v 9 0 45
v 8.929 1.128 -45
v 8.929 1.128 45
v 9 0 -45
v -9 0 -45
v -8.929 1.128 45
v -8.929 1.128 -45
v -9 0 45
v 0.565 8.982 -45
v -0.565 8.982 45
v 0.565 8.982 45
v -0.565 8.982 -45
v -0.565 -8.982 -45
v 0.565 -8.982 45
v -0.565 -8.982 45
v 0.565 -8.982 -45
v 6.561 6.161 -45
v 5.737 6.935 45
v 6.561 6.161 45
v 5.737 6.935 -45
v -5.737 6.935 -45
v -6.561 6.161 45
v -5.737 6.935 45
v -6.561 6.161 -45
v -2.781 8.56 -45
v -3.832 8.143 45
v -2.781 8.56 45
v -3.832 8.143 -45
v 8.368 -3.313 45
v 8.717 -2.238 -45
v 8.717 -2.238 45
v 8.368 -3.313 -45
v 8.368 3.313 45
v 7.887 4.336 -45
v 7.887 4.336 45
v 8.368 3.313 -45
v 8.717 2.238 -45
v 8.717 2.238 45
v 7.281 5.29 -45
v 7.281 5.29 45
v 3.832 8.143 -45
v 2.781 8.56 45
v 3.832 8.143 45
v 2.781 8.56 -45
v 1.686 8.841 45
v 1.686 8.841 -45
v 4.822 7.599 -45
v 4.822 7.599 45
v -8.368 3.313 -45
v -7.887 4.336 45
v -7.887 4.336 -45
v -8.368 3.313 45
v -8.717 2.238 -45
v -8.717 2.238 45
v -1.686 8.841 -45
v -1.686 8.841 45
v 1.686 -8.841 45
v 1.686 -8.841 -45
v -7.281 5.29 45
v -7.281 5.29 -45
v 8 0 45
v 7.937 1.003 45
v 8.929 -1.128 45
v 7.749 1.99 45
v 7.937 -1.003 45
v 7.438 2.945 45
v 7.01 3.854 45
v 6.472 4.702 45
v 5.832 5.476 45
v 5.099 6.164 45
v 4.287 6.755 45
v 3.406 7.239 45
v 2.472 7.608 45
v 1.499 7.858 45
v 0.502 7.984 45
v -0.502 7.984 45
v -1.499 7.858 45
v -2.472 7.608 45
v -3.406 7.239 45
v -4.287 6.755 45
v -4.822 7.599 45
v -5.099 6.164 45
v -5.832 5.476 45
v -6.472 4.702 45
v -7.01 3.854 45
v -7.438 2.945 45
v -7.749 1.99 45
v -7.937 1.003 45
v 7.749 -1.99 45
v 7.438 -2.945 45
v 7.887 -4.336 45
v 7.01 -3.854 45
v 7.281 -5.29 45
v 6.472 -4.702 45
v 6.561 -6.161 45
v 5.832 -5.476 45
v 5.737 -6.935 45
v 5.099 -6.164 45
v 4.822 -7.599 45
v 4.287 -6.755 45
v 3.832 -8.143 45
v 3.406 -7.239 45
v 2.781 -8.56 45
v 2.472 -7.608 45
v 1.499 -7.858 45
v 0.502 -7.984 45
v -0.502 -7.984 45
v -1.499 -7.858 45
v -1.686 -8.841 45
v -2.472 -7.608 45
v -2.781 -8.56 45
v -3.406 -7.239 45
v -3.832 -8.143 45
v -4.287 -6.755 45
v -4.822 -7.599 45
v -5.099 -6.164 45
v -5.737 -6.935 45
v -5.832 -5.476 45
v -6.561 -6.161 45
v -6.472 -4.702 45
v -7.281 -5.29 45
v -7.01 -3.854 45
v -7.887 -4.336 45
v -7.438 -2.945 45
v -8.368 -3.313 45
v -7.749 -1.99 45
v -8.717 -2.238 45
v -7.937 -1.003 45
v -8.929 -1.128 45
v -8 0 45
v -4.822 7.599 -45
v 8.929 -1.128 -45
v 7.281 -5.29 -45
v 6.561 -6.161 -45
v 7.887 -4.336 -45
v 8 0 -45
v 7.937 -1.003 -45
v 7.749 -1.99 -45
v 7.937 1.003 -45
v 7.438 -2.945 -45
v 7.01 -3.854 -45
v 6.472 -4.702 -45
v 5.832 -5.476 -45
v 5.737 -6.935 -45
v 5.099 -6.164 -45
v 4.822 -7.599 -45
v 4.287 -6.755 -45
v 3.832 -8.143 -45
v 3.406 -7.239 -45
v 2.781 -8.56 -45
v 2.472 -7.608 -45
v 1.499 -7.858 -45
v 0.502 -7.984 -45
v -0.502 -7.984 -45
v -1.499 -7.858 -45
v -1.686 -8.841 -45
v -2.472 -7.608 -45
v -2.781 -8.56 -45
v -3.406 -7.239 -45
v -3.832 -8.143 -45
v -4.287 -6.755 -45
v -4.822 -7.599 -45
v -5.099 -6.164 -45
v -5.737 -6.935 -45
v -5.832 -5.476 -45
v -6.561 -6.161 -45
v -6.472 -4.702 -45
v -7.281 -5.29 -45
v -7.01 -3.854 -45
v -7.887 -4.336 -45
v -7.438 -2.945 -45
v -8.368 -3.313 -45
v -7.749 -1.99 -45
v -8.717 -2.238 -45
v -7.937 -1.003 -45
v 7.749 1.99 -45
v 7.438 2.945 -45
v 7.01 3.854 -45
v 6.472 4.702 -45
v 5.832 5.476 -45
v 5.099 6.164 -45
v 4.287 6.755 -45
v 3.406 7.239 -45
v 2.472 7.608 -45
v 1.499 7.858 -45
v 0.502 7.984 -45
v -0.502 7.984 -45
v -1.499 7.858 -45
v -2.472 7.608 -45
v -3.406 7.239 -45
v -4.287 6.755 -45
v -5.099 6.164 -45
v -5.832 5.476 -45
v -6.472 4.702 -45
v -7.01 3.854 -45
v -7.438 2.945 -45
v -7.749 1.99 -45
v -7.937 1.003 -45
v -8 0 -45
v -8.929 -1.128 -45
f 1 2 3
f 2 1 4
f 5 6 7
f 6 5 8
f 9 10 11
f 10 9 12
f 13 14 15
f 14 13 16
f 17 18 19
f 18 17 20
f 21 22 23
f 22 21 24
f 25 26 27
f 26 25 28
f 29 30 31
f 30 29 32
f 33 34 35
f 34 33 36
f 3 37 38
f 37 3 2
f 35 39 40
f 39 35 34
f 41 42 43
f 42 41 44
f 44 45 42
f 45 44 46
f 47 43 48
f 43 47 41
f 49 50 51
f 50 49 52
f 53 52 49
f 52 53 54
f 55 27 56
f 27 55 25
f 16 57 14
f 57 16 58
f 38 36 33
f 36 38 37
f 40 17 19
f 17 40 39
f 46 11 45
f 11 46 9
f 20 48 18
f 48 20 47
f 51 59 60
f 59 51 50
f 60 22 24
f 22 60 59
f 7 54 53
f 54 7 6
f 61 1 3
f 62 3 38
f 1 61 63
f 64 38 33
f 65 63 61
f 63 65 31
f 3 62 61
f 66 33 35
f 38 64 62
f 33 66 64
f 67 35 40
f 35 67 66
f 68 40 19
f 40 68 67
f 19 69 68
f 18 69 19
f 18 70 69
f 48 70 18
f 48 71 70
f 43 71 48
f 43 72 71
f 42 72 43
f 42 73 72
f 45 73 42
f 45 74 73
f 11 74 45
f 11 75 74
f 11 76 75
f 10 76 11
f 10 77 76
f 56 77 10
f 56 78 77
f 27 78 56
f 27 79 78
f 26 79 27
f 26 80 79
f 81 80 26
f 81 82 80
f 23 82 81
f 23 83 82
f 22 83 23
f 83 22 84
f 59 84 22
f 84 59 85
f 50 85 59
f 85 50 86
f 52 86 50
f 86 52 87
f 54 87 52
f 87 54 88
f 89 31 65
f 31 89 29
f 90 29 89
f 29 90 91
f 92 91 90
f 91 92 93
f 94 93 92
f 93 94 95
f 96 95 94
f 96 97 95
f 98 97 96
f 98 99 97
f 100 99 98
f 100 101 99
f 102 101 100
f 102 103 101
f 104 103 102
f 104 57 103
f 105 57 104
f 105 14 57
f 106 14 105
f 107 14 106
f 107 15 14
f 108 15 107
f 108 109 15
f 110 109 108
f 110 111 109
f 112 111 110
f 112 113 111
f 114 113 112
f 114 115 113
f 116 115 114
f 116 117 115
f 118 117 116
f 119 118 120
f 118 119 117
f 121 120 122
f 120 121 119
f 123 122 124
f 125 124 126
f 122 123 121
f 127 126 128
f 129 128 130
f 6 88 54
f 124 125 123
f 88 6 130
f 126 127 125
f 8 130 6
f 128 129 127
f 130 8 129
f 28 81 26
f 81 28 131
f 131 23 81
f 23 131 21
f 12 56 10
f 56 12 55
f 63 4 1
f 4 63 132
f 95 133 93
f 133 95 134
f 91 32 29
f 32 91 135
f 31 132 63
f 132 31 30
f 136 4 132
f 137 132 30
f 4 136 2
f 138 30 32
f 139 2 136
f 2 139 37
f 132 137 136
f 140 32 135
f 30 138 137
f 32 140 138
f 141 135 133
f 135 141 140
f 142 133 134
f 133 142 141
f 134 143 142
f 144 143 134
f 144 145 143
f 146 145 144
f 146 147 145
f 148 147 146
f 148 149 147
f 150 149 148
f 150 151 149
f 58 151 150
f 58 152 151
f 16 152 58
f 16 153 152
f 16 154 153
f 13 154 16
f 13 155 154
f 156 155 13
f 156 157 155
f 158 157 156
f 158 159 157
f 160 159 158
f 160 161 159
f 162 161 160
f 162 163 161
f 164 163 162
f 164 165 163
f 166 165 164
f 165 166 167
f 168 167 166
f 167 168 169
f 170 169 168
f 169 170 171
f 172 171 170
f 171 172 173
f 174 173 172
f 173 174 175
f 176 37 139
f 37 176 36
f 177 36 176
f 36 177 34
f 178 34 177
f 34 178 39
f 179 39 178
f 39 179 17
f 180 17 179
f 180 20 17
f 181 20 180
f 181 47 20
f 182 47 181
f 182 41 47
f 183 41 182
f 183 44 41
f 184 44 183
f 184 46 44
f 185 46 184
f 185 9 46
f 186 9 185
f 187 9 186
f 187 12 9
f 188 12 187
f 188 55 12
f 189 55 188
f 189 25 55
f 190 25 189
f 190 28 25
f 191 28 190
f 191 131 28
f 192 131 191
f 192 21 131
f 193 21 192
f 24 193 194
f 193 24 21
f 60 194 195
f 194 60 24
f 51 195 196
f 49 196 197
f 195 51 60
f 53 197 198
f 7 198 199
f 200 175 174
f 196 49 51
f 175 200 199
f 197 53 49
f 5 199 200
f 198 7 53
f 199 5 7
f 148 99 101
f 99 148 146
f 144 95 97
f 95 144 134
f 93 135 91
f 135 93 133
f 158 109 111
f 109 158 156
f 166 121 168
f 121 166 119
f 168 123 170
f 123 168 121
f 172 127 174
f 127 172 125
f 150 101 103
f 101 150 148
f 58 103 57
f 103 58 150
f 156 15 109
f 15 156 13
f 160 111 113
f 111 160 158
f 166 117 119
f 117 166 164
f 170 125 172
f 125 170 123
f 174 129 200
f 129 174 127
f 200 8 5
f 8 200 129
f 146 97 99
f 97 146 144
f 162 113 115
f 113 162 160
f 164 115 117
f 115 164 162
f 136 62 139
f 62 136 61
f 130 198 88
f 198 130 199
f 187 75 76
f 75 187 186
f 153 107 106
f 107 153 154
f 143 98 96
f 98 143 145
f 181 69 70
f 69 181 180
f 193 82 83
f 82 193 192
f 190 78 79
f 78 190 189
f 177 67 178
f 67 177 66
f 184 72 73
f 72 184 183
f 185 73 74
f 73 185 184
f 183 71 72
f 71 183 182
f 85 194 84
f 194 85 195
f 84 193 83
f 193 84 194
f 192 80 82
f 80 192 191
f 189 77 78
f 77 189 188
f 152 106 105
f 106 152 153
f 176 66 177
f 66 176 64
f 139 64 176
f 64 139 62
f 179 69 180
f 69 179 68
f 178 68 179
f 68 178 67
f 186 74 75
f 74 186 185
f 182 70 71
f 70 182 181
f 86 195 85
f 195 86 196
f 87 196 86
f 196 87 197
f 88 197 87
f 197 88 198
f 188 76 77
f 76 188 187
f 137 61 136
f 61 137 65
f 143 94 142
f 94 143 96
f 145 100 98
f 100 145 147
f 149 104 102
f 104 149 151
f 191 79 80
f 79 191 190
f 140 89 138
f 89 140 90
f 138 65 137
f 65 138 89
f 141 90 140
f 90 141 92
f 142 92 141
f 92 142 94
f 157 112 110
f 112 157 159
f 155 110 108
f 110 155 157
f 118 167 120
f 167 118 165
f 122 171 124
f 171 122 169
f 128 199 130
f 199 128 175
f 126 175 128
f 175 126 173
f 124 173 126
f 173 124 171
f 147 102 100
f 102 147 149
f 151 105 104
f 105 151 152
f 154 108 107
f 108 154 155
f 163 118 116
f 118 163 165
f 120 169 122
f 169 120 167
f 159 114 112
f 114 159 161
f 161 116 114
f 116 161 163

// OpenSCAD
$fn = 50;


difference() {
	union() {
		translate(v = [0, 0, -45.0000000000]) {
			cylinder(h = 90, r = 9.0000000000);
		}
	}
	union() {
		translate(v = [0, 0, -100.0000000000]) {
			cylinder(h = 200, r = 8);
		}
	}
}
